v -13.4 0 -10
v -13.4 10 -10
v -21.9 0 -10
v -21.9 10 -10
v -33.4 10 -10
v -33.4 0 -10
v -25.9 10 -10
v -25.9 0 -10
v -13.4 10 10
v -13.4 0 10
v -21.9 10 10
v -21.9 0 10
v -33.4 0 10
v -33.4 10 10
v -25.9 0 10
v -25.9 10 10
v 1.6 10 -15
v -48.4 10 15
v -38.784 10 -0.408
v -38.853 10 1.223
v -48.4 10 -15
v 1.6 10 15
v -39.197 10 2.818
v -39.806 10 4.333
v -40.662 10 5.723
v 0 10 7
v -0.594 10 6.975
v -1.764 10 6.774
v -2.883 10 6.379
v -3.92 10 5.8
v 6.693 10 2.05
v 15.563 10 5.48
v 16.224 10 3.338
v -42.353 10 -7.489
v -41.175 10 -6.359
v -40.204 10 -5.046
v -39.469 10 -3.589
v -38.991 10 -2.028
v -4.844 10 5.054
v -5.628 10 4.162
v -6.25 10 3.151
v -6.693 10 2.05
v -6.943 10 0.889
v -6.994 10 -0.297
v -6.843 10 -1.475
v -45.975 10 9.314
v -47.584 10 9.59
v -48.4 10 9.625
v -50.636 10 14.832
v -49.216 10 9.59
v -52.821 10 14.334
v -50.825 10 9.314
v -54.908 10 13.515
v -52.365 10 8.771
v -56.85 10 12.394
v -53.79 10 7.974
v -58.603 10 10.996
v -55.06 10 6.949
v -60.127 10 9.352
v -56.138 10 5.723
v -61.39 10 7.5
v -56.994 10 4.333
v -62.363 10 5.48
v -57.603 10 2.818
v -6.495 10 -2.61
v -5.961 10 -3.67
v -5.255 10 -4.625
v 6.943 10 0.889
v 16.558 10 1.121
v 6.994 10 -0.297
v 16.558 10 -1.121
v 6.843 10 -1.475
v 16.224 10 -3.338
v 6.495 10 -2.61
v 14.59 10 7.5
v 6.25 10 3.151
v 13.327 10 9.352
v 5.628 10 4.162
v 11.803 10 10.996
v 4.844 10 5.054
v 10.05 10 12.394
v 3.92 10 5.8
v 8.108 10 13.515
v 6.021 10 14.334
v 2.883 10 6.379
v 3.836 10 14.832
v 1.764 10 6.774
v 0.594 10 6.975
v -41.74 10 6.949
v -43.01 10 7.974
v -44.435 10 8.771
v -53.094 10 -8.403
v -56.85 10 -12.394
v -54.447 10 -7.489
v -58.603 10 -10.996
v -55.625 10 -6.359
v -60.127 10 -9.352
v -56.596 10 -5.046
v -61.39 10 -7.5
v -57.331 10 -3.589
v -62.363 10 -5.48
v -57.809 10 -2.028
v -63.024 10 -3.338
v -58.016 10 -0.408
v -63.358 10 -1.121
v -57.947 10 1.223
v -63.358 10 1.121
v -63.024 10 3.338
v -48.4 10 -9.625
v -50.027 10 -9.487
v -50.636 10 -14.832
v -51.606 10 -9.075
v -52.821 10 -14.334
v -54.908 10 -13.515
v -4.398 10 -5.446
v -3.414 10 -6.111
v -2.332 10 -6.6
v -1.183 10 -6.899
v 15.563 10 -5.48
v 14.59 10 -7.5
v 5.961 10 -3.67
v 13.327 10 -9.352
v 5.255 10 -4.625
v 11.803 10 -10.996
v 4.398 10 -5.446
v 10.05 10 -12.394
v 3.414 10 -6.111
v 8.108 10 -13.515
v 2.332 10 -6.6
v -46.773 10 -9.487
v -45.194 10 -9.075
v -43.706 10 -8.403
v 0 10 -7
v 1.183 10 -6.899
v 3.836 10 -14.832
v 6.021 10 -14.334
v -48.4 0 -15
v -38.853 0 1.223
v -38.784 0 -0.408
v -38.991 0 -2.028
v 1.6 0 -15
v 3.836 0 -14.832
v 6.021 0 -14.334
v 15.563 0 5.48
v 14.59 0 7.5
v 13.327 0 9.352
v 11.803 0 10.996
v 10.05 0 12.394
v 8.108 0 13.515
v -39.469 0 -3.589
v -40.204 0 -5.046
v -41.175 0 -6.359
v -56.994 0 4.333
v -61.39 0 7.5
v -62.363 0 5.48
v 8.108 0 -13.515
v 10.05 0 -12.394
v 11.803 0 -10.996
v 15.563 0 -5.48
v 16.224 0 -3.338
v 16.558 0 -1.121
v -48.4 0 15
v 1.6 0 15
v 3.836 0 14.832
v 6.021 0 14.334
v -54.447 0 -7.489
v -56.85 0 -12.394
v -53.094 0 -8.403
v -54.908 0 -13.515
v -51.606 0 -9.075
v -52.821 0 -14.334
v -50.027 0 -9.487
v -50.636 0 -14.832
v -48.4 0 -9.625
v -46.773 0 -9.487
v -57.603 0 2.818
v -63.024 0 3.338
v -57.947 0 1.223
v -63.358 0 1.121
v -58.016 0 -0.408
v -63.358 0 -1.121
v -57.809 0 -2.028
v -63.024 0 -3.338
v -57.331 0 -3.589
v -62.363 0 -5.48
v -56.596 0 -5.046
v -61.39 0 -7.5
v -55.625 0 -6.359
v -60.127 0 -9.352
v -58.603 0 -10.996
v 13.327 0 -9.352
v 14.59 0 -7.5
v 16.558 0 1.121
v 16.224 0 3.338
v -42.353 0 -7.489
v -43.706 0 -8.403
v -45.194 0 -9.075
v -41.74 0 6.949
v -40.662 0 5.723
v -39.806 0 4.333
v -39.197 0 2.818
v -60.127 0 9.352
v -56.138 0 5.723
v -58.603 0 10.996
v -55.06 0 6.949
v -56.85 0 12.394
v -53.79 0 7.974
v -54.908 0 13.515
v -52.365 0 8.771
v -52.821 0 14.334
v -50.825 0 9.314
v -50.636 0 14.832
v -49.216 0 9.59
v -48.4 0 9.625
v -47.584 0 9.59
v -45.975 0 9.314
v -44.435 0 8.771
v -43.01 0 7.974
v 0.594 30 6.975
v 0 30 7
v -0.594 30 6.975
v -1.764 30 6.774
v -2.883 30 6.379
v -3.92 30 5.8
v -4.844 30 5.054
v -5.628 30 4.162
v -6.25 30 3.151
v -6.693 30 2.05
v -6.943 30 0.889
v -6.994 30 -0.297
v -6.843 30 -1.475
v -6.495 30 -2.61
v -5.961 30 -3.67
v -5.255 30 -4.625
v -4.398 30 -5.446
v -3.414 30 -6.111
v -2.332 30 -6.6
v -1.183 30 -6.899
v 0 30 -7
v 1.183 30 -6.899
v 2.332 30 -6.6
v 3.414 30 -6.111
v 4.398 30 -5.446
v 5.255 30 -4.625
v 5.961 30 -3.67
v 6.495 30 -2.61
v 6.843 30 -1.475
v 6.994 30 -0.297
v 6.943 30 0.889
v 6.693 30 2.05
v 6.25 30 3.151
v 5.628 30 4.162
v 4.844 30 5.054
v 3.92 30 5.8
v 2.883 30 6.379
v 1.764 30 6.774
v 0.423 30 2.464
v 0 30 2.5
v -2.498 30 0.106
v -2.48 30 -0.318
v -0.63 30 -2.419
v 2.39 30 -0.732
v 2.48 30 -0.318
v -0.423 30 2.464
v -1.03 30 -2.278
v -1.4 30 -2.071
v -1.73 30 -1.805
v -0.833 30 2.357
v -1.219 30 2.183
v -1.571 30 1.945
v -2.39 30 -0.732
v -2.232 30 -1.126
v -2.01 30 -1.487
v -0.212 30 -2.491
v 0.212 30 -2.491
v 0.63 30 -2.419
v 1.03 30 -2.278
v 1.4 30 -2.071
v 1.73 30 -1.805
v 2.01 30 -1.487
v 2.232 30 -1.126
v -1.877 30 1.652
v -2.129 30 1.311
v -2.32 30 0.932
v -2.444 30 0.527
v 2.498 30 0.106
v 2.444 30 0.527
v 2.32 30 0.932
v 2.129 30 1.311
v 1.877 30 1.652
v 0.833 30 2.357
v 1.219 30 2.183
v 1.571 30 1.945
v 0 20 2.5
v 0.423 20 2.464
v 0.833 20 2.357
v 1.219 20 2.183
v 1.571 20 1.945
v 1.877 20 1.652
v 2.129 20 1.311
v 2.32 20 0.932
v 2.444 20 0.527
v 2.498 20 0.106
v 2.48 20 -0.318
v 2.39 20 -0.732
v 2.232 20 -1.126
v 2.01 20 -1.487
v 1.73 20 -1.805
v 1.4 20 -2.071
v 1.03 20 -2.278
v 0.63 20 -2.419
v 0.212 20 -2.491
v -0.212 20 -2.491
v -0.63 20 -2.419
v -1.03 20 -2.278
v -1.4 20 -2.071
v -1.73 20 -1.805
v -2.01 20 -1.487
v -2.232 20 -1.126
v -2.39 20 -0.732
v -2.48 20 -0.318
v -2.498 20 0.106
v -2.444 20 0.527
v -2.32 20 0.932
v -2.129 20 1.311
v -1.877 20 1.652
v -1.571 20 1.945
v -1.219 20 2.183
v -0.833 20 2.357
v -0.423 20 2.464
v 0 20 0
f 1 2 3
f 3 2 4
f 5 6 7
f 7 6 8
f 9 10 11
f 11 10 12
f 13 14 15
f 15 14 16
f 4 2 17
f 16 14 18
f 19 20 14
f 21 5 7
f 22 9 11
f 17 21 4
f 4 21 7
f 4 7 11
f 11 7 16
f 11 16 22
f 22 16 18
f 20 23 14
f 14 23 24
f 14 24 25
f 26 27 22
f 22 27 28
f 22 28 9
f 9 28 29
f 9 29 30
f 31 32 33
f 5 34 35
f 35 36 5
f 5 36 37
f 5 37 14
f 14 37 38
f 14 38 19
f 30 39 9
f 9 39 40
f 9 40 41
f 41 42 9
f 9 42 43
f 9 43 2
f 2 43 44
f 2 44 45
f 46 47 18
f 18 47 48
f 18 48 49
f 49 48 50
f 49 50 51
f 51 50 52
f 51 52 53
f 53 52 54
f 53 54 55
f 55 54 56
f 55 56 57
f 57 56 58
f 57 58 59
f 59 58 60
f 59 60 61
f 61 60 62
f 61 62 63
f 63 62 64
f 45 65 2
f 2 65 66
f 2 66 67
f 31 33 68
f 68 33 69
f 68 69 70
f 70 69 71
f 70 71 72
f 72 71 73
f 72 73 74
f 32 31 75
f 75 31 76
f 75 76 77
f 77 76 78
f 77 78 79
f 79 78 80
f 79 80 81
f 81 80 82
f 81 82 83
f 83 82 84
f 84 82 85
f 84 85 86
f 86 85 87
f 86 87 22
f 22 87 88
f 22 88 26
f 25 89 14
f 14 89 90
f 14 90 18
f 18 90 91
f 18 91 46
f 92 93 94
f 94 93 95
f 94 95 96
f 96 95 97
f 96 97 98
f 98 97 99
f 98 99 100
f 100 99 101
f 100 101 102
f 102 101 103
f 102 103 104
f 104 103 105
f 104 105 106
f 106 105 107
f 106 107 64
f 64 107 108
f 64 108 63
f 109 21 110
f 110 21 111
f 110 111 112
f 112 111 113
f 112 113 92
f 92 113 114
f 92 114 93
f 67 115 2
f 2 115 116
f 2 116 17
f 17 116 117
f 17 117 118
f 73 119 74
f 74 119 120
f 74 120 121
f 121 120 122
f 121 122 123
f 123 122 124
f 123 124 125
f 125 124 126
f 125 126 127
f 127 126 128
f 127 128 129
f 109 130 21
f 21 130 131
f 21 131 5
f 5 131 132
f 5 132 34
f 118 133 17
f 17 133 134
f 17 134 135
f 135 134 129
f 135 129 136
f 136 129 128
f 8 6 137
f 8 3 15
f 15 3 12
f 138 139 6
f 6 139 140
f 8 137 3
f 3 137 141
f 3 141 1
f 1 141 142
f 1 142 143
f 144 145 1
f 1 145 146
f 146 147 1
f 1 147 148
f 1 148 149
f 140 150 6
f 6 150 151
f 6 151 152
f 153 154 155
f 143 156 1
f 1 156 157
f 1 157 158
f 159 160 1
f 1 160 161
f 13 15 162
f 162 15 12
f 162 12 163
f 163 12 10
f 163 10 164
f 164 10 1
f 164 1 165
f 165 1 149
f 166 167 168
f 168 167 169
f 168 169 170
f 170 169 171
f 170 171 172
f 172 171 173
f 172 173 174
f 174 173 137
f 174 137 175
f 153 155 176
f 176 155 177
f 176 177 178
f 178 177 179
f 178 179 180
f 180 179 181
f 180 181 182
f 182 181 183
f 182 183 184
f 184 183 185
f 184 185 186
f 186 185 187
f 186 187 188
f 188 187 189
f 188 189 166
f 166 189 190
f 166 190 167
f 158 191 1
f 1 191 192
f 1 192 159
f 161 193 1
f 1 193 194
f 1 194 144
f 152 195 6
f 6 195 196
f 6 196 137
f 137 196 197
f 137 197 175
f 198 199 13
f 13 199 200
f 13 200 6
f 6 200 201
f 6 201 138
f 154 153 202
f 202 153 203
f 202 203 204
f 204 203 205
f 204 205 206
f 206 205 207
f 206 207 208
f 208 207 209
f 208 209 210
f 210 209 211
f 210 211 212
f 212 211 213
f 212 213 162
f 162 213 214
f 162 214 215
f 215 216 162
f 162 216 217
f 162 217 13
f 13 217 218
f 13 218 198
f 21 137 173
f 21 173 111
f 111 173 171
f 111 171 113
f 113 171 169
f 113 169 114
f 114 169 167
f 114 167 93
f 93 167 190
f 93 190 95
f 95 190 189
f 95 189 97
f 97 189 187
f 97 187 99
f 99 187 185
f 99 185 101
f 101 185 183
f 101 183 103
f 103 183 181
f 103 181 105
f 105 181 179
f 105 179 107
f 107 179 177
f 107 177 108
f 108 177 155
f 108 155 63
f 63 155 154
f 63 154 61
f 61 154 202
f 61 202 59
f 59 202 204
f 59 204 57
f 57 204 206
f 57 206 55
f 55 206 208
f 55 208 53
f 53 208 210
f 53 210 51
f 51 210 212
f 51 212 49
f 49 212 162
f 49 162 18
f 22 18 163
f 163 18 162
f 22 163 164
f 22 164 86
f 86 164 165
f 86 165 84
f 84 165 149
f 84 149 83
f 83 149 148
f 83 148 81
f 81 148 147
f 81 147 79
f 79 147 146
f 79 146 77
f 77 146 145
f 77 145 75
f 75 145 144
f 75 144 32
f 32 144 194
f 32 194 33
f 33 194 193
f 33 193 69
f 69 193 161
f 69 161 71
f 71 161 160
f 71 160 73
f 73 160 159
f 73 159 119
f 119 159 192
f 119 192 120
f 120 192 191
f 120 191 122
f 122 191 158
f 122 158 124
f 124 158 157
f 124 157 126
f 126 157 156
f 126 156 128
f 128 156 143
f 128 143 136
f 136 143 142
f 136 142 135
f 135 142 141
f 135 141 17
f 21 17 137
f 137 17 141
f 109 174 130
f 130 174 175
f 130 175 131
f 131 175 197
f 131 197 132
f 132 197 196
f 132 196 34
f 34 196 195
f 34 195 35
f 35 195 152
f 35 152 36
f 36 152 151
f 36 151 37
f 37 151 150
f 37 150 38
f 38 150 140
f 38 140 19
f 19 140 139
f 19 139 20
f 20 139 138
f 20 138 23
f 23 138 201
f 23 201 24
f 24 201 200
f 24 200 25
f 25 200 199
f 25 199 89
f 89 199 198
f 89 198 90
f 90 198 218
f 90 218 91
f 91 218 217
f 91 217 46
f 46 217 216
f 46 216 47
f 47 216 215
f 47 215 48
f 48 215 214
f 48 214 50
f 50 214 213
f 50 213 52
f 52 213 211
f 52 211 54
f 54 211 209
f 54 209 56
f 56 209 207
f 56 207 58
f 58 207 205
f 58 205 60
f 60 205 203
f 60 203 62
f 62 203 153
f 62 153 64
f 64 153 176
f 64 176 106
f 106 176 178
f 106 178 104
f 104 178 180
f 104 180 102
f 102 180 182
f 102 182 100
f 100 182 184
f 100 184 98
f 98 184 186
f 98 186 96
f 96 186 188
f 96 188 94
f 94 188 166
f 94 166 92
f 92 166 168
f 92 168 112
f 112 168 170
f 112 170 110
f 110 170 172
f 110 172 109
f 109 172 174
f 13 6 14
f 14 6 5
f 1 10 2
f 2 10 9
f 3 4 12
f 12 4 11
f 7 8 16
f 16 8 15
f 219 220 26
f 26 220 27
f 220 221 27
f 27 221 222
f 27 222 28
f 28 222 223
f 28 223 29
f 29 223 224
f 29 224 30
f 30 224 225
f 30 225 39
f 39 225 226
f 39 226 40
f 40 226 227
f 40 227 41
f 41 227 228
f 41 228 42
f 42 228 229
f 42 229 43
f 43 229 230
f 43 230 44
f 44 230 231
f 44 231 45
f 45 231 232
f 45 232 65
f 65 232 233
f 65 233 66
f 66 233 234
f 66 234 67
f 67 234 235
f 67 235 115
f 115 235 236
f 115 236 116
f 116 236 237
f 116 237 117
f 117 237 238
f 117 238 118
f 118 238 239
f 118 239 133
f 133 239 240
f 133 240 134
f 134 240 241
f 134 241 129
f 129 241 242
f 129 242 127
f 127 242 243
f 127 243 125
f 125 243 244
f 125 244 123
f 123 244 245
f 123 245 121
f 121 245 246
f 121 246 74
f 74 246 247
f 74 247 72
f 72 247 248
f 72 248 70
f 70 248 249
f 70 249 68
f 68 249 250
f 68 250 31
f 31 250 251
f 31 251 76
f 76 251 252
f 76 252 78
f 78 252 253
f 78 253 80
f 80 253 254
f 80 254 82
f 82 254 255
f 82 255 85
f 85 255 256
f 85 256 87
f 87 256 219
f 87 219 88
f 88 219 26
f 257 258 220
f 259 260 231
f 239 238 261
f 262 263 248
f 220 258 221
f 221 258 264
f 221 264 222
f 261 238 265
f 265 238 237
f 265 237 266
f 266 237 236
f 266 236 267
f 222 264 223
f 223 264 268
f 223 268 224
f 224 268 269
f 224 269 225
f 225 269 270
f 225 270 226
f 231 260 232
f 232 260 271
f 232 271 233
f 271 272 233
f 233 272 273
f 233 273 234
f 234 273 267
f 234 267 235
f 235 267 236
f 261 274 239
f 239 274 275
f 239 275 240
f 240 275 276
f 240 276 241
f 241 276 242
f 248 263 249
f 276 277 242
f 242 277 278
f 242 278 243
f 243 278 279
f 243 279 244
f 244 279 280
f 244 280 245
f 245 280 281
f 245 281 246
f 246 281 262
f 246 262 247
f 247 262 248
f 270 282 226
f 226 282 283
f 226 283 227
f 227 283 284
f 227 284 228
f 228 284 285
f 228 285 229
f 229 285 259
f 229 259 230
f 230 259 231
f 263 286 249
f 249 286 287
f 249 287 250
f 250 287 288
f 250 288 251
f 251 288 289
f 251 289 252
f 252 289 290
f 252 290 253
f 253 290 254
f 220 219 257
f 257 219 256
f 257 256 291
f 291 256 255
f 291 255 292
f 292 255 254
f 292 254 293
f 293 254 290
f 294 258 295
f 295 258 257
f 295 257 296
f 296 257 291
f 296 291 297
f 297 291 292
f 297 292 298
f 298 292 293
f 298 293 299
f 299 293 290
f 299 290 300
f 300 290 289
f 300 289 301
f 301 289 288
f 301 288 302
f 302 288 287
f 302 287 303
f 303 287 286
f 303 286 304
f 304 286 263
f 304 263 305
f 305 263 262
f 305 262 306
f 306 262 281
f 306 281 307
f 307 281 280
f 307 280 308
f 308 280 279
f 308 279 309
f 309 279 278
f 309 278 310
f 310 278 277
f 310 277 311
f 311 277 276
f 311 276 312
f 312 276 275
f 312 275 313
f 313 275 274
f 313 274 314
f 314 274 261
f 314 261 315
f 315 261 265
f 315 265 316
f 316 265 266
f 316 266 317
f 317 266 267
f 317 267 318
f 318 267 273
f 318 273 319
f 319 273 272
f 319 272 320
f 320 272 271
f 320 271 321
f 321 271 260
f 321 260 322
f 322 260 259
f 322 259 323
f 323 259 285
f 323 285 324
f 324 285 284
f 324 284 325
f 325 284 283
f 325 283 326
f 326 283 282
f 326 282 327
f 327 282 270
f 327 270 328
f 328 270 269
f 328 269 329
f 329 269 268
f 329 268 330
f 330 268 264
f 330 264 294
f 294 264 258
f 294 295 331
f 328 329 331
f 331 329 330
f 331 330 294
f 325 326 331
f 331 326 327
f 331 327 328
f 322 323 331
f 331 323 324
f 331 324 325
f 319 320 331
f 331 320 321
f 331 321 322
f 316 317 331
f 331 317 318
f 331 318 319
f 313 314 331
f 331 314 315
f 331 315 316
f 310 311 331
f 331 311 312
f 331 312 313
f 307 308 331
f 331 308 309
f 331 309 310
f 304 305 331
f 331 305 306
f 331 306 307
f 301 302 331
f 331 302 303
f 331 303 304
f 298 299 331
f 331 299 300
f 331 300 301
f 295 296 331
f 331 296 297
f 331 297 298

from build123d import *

# Parameters (mm, degrees)
SKETCH1_R           = 9.625
BOSS_EXTRUDE1_DEPTH = 10
SKETCH2_W           = 20
SKETCH2_H           = 20
CUT_EXTRUDE1_DEPTH  = 66.913290189
BOSS_EXTRUDE2_REACH = 70.881
SKETCH4_W           = 4
SKETCH4_H           = 10
SKETCH5_R           = 7
BOSS_EXTRUDE3_DEPTH = 20
SKETCH8_R           = 2.5
CUT_EXTRUDE2_DEPTH  = 10


with BuildPart() as part:
    # Sketch1 → Boss-Extrude1 (new body)
    with BuildSketch(Plane(origin=(0, 0, 0), x_dir=(1, 0, 0), z_dir=(0, 1, 0))):
        with BuildLine():
            Line((-48.400014381, 15), (1.599985619, 15))
            ThreePointArc((1.599985619, 15), (16.599985619, 0), (1.599985619, -15))
            Line((1.599985619, -15), (-48.400014381, -15))
            ThreePointArc((-48.400014381, -15), (-63.400014381, 0), (-48.400014381, 15))
        make_face()
        with Locations(Location((-48.400014381, 0, 0), (0, 0, 270))):
            Circle(SKETCH1_R, mode=Mode.SUBTRACT)
    extrude(amount=BOSS_EXTRUDE1_DEPTH)

    # Sketch2 → Cut-Extrude1 (cut, through all)
    with BuildSketch(Plane(origin=(0, 10, 0), x_dir=(1, 0, 0), z_dir=(0, 1, 0))):
        with Locations((-23.400014381, 0)):
            Rectangle(SKETCH2_W, SKETCH2_H)
    extrude(amount=-CUT_EXTRUDE1_DEPTH, mode=Mode.SUBTRACT)

    # Sketch4 → Boss-Extrude2 (add, up to next)
    with BuildSketch(Plane.XY.offset(-10), mode=Mode.PRIVATE) as boss_extrude2_sk1:
        with Locations((-23.900014381, 5)):
            Rectangle(SKETCH4_W, SKETCH4_H)
    boss_extrude2_tool1 = extrude(boss_extrude2_sk1.sketch, amount=BOSS_EXTRUDE2_REACH, mode=Mode.PRIVATE) - part.part
    add(boss_extrude2_tool1.solids().sort_by_distance((-23.900014, 5, -10))[0])

    # Sketch5 → Boss-Extrude3 (add)
    with BuildSketch(Plane(origin=(0, 10, 0), x_dir=(1, 0, 0), z_dir=(0, 1, 0))):
        with Locations(Location((0, 0, 0), (0, 0, 270))):
            Circle(SKETCH5_R)
    extrude(amount=BOSS_EXTRUDE3_DEPTH)

    # Sketch8 → Cut-Extrude2 (cut)
    with BuildSketch(Plane(origin=(0, 30, 0), x_dir=(1, 0, 0), z_dir=(0, 1, 0))):
        with Locations(Location((0, 0, 0), (0, 0, 270))):
            Circle(SKETCH8_R)
    extrude(amount=-CUT_EXTRUDE2_DEPTH, mode=Mode.SUBTRACT)


solid = part.part
